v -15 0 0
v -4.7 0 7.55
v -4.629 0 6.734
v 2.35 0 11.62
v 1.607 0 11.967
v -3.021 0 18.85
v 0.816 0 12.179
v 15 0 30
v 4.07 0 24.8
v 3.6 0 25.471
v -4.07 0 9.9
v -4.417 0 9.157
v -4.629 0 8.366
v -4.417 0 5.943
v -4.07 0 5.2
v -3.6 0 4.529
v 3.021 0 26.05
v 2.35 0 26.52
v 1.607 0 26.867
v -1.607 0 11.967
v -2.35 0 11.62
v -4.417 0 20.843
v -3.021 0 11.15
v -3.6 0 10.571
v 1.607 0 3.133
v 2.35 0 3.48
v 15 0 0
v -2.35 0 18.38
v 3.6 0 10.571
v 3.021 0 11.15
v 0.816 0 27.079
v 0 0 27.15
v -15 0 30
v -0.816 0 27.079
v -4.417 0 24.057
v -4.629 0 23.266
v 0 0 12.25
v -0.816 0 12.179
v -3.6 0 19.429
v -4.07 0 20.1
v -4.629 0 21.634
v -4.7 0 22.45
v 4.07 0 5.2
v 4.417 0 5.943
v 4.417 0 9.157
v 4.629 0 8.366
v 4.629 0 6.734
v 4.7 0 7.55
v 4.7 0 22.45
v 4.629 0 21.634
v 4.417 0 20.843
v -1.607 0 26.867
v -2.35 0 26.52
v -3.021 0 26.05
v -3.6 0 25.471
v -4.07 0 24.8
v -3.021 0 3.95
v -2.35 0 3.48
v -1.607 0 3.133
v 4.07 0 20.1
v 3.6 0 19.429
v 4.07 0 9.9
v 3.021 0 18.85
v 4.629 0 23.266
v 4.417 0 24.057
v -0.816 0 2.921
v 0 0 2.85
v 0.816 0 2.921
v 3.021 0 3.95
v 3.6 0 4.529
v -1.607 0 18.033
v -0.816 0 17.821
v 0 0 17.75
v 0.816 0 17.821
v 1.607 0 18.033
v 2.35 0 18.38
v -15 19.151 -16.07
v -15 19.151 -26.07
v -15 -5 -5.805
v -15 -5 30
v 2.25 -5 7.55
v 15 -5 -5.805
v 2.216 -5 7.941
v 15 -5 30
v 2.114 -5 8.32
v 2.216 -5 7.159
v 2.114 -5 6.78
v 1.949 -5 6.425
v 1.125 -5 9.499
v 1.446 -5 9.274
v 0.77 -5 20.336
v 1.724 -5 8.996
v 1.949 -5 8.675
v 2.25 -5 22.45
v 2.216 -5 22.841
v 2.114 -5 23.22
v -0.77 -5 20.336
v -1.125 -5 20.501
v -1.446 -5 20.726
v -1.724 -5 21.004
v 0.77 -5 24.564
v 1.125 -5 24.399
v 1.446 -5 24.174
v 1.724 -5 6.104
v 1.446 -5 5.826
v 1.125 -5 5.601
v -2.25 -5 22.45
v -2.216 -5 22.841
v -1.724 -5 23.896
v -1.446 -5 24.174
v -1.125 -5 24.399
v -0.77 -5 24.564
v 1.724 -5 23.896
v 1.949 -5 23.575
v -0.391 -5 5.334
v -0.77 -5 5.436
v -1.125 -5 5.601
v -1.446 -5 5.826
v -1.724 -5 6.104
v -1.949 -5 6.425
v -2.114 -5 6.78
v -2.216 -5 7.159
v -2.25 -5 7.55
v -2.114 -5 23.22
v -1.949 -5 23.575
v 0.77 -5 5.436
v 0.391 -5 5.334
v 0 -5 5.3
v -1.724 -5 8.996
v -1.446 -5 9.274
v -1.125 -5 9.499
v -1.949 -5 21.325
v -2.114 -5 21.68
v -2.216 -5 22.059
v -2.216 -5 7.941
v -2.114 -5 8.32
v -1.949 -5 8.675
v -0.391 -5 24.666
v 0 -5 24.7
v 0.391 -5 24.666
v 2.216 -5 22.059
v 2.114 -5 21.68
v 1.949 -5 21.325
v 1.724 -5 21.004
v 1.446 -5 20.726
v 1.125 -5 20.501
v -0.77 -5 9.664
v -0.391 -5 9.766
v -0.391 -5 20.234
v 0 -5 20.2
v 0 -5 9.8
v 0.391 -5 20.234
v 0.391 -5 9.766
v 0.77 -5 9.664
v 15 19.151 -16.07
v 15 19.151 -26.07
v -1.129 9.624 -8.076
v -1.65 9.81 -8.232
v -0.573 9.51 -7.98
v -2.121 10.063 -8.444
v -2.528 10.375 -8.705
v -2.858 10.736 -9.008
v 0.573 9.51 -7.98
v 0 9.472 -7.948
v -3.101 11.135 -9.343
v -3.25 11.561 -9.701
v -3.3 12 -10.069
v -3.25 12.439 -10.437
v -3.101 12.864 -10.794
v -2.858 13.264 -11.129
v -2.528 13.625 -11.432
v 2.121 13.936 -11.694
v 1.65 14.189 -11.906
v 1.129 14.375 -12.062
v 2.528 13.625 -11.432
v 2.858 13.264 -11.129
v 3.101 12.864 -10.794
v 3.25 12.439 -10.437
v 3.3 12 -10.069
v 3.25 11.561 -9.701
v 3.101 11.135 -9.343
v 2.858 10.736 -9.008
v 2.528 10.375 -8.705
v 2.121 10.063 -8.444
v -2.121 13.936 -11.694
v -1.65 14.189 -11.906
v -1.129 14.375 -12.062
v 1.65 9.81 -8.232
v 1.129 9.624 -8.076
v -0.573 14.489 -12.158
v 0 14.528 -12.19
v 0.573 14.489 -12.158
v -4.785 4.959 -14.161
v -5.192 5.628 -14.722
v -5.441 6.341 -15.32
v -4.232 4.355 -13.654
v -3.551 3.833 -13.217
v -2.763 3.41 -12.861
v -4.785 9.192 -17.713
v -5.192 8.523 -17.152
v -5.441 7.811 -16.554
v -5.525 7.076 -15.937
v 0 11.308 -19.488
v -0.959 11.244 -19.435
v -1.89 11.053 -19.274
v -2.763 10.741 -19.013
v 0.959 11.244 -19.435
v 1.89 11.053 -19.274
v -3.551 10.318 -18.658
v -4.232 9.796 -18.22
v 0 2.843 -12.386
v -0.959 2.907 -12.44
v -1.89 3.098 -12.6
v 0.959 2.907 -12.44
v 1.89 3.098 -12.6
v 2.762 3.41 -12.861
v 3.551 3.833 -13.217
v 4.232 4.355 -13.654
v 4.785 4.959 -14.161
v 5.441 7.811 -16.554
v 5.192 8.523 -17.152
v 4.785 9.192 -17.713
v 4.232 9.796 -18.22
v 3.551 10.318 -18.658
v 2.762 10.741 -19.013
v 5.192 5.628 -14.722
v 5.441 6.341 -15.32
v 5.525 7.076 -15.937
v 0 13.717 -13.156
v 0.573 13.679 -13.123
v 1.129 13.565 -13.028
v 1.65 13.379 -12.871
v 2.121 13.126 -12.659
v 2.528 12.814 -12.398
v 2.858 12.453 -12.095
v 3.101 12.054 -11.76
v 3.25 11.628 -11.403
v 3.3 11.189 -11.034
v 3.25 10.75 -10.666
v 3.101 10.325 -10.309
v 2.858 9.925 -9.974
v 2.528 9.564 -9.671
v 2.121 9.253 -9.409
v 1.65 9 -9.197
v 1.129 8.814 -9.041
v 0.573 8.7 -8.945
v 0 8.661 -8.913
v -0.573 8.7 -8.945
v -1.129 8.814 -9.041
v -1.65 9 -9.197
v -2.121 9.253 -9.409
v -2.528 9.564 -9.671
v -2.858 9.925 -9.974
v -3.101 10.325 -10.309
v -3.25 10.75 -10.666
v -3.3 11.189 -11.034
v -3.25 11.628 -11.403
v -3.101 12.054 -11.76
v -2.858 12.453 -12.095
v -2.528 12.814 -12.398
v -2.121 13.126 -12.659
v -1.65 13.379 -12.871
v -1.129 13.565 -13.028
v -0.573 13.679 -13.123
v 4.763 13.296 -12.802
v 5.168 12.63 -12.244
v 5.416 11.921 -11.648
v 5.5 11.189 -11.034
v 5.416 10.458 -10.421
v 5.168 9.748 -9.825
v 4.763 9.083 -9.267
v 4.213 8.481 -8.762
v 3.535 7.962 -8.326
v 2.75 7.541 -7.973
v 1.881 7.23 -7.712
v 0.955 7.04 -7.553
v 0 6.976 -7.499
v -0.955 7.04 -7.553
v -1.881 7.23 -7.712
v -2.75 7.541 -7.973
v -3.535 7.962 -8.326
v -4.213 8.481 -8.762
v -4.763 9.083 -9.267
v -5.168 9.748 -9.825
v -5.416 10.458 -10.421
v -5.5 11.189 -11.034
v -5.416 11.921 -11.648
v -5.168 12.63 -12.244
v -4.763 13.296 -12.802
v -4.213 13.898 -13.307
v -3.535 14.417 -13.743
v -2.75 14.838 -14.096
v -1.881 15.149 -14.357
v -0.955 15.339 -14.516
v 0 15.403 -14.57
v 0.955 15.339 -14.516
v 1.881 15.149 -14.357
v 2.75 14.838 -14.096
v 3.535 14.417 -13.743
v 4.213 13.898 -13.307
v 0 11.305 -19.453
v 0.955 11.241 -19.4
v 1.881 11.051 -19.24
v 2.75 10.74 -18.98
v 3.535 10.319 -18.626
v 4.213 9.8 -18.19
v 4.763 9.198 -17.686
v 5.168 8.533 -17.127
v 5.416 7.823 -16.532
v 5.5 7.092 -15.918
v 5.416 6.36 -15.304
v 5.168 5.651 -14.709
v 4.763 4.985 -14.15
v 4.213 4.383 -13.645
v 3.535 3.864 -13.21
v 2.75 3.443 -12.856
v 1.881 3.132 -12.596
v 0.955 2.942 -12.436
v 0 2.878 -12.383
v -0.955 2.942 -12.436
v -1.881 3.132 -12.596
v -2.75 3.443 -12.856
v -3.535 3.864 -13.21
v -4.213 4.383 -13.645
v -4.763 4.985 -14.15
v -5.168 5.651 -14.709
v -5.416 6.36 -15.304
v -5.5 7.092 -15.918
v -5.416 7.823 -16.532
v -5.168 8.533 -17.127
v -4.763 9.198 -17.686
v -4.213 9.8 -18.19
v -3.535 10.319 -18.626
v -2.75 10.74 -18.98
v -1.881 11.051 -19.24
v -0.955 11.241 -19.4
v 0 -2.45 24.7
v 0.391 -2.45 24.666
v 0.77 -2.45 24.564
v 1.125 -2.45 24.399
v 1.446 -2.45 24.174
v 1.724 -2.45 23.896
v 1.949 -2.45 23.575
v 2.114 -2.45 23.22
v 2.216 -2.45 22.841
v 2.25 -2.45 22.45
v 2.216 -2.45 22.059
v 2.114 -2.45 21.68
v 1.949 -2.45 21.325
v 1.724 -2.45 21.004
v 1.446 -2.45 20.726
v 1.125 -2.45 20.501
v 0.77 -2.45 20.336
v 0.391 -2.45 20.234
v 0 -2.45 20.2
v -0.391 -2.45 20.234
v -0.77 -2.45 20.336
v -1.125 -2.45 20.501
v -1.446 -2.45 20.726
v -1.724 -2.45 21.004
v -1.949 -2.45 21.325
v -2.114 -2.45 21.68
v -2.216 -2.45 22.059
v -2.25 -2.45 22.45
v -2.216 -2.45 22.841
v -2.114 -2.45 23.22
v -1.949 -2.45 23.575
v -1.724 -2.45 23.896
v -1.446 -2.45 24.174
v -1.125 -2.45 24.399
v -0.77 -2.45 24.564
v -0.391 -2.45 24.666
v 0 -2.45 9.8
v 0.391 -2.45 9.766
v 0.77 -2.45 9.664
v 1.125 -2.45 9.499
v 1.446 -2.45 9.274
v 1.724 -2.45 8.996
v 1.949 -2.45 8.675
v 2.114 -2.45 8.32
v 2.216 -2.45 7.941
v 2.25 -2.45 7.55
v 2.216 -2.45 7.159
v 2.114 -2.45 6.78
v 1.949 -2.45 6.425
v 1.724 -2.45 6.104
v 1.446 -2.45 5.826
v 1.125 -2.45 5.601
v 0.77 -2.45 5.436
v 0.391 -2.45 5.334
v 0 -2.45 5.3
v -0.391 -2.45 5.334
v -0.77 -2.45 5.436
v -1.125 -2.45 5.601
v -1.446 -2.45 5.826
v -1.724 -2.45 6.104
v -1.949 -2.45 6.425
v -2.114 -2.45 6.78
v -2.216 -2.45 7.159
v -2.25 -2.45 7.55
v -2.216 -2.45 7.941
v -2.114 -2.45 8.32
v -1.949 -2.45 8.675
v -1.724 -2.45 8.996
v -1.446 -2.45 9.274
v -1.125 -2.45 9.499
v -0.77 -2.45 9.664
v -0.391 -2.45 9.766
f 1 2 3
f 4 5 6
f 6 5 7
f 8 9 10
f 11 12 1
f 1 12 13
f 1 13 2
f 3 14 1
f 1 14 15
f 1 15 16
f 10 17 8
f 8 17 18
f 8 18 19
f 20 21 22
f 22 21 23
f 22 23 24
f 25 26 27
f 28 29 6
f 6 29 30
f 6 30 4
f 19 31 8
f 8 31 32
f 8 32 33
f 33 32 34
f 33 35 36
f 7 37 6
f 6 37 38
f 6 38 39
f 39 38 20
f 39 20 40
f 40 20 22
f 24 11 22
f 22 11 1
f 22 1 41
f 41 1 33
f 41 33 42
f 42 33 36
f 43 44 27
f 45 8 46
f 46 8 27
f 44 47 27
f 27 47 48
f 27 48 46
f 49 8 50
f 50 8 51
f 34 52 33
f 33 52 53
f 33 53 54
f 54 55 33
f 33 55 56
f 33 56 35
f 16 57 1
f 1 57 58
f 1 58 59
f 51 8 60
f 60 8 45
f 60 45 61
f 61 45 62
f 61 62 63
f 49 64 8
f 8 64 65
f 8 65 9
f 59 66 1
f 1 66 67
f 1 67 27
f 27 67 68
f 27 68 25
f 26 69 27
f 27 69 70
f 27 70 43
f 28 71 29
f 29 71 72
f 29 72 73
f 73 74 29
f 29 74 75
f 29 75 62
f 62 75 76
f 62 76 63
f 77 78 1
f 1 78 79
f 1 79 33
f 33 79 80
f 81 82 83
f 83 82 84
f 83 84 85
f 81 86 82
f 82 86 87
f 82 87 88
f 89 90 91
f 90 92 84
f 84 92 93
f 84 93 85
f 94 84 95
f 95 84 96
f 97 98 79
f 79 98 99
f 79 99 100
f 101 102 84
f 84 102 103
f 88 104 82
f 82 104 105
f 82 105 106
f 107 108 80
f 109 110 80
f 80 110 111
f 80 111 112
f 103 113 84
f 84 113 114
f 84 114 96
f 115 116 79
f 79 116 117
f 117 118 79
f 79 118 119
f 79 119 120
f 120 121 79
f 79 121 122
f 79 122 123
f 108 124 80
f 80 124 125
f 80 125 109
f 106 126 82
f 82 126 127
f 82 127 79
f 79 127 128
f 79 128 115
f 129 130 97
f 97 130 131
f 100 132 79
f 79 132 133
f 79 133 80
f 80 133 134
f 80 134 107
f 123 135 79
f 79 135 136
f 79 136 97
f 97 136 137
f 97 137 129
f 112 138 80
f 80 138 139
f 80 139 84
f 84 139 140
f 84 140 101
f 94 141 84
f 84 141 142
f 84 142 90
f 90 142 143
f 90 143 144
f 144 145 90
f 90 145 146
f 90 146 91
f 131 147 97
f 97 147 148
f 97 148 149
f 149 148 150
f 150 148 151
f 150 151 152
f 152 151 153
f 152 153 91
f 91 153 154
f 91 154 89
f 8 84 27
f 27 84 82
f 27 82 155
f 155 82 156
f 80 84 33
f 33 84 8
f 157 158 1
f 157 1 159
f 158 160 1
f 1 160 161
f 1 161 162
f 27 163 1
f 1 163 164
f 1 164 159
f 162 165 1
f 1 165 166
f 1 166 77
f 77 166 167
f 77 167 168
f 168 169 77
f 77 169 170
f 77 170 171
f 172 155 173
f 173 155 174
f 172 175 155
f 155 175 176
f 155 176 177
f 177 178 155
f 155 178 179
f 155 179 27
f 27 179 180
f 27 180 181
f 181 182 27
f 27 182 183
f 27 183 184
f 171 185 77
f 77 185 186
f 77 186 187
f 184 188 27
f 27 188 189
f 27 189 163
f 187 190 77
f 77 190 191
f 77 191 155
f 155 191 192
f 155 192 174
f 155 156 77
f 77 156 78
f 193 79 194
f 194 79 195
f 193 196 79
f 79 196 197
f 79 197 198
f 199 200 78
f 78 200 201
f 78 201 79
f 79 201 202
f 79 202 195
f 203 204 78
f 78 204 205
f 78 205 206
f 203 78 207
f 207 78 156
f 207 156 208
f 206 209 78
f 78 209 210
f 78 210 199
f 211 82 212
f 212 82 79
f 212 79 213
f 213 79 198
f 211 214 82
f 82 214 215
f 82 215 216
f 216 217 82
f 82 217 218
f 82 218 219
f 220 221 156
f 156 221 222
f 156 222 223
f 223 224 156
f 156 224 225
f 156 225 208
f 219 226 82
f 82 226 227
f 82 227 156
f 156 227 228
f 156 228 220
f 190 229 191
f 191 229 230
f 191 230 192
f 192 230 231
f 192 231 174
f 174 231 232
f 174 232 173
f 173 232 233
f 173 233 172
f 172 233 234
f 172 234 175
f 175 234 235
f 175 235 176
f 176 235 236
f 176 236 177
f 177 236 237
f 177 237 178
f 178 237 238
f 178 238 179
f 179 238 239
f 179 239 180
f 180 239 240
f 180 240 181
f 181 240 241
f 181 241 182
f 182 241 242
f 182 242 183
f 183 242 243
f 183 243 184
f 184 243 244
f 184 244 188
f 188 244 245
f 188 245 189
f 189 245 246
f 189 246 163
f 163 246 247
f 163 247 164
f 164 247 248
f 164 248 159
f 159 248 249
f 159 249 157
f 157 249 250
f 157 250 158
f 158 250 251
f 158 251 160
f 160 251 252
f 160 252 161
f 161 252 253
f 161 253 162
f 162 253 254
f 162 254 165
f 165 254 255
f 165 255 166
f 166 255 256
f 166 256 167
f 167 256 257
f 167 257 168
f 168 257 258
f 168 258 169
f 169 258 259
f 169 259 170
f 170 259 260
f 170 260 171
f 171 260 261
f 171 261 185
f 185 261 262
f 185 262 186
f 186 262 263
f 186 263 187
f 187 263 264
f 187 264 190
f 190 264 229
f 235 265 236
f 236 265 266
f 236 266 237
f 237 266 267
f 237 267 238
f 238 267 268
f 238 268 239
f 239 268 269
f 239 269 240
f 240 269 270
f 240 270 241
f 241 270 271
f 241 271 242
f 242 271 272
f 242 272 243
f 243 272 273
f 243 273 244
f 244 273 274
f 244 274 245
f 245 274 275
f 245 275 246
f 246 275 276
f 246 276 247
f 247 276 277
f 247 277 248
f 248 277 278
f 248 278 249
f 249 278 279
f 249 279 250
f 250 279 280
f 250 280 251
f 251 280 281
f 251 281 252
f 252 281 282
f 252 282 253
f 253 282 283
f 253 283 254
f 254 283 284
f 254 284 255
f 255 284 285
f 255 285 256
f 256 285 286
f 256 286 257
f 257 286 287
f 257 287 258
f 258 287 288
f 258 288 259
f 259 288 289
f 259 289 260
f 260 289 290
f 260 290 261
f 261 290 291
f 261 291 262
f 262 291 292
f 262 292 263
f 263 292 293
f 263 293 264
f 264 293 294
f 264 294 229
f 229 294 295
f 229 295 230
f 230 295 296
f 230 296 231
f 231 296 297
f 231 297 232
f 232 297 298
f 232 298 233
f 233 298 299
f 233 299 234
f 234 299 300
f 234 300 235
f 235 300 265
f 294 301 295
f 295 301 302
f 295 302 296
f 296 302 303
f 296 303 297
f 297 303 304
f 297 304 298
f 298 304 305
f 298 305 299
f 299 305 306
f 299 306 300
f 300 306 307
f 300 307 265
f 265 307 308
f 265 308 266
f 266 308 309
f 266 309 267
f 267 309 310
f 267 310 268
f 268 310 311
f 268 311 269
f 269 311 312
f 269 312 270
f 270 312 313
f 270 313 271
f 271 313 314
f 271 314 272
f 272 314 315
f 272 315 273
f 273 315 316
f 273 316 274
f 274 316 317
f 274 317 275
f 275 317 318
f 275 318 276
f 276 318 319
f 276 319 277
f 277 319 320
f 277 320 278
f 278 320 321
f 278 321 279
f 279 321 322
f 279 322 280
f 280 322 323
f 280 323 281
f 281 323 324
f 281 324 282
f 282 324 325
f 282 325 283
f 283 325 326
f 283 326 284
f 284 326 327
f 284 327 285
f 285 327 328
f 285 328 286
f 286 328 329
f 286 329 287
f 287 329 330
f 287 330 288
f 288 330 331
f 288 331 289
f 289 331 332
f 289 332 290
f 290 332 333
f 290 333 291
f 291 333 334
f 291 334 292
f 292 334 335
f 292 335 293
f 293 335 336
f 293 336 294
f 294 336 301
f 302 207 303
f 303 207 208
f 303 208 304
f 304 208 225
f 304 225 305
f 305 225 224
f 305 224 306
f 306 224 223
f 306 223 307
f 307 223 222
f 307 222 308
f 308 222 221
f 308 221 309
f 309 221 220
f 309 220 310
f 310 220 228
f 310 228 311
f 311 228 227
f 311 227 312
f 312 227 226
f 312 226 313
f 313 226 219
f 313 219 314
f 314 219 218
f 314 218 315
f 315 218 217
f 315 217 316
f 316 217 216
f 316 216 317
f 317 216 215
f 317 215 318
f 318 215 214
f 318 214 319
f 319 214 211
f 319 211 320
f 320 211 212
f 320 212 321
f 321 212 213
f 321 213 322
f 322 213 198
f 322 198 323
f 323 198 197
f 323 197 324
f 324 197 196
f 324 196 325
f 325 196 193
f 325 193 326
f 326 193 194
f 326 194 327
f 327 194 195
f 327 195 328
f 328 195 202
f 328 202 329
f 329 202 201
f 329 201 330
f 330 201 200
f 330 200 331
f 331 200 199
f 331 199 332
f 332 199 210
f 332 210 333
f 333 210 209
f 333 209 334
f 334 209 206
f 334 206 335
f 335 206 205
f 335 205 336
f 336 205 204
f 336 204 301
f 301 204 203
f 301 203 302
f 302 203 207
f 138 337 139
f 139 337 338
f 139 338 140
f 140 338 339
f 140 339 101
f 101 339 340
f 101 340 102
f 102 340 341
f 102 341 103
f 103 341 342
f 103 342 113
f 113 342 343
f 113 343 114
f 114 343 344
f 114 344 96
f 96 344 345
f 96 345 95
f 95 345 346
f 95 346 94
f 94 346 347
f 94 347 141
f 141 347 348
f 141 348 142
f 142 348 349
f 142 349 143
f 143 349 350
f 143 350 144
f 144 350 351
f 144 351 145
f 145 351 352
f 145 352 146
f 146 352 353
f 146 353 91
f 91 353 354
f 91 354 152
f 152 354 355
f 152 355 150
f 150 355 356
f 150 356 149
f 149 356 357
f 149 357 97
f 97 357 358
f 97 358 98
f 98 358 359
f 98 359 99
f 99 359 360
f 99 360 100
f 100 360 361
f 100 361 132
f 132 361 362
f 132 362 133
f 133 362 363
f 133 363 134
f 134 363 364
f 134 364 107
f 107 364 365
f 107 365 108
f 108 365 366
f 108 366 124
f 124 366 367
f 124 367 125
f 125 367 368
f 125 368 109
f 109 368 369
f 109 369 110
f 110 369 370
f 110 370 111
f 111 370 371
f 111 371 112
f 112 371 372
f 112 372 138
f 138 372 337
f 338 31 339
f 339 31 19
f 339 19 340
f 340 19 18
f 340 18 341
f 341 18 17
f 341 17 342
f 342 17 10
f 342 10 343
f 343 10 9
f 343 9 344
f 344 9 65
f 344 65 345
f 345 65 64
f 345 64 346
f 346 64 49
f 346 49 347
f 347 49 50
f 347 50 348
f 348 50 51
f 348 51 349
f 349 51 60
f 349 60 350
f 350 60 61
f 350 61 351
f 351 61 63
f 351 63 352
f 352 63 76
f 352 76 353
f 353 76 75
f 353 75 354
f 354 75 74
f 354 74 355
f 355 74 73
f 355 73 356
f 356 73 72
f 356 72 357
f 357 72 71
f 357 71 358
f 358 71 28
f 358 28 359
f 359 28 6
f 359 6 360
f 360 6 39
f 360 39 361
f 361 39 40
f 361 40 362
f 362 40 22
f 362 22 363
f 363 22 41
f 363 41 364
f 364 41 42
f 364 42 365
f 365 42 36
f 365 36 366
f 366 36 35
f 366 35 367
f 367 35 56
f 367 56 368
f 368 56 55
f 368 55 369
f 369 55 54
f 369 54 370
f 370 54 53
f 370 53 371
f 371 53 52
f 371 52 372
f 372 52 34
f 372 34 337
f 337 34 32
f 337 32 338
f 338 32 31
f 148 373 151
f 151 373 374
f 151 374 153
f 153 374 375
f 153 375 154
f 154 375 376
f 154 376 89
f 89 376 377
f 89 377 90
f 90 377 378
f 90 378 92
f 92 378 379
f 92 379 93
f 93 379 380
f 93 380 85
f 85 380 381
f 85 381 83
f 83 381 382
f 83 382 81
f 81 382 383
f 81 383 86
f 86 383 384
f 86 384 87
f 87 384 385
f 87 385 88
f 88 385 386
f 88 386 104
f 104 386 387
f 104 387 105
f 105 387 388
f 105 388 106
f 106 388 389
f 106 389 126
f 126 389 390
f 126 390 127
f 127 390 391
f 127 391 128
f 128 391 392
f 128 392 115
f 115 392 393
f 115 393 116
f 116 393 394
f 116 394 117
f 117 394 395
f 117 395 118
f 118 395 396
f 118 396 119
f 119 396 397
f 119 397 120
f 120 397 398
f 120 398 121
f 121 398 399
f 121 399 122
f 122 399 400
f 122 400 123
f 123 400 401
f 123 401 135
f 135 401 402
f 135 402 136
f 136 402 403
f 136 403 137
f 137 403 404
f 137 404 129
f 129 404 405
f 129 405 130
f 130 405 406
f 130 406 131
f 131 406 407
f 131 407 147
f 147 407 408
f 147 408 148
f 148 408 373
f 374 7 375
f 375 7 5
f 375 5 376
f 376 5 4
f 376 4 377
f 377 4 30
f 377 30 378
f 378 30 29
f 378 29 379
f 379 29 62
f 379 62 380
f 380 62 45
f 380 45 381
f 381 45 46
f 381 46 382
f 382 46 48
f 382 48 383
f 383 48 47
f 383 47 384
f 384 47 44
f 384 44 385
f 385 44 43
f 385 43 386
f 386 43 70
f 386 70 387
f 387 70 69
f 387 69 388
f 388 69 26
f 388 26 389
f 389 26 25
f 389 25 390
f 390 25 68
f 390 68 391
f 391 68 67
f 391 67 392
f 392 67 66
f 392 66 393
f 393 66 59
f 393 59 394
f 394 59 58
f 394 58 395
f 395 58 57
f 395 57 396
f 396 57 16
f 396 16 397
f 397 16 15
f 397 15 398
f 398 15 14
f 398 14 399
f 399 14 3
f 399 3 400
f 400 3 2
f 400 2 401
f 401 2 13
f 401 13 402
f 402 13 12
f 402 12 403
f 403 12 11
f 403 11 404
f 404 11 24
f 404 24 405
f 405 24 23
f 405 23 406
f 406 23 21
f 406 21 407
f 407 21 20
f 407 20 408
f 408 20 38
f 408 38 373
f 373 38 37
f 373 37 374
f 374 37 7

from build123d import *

# Parameters (mm, degrees)
SKETCH1_W                                           = 30
SKETCH1_H                                           = 5
BOSS_EXTRUDE1_DEPTH                                 = 30
BOSS_EXTRUDE3_DEPTH                                 = 30
CSK_FOR_M4_COUNTERSUNK_FLAT_HEAD_SCREW1_D           = 4.5
CSK_FOR_M4_COUNTERSUNK_FLAT_HEAD_SCREW1_CSINK_D     = 9.4
CSK_FOR_M4_COUNTERSUNK_FLAT_HEAD_SCREW1_CSINK_ANGLE = 90


with BuildPart() as part:
    # Sketch1 → Boss-Extrude1 (new body)
    with BuildSketch(Plane.XY):
        with Locations((0, -2.5)):
            Rectangle(SKETCH1_W, SKETCH1_H)
    extrude(amount=BOSS_EXTRUDE1_DEPTH)

    # Sketch3 → Boss-Extrude3 (add)
    with BuildSketch(Plane(origin=(15, 0, 0), x_dir=(0, 0, -1), z_dir=(1, 0, 0))):
        Polygon((0, 0), (16.069690242, 19.151111078), (26.069690242, 19.151111078), (5.804501844, -5), (0, -5), align=None)
    extrude(amount=-BOSS_EXTRUDE3_DEPTH)

    # Sketch6 → CBORE for M6 Hex Socket Head Cap Screw1 (revolve, cut)
    with BuildSketch(Plane(origin=(0, 7.075555539, -15.937096043), x_dir=(0, 0.766044443, -0.64278761), z_dir=(1, 0, 0))):
        Polygon((0, 0), (0, 42.951874637), (3.3, 42.951874637), (3.3, 6.4), (5.5, 6.4), (5.5, 0.025), (5.525, 0), align=None)
    revolve(axis=Axis((0, 2.993854217, -20.801478257), (0, 0.64278761, 0.766044443)), mode=Mode.SUBTRACT)

    # CSK for M4 Countersunk Flat Head Screw1 (through all)
    with Locations(Plane(origin=(0, 0, 0), x_dir=(1, 0, 0), z_dir=(0, 1, 0))):
        with Locations((0, -7.55), (0, -22.45)):
            CounterSinkHole(CSK_FOR_M4_COUNTERSUNK_FLAT_HEAD_SCREW1_D / 2, CSK_FOR_M4_COUNTERSUNK_FLAT_HEAD_SCREW1_CSINK_D / 2, counter_sink_angle=CSK_FOR_M4_COUNTERSUNK_FLAT_HEAD_SCREW1_CSINK_ANGLE)


solid = part.part
